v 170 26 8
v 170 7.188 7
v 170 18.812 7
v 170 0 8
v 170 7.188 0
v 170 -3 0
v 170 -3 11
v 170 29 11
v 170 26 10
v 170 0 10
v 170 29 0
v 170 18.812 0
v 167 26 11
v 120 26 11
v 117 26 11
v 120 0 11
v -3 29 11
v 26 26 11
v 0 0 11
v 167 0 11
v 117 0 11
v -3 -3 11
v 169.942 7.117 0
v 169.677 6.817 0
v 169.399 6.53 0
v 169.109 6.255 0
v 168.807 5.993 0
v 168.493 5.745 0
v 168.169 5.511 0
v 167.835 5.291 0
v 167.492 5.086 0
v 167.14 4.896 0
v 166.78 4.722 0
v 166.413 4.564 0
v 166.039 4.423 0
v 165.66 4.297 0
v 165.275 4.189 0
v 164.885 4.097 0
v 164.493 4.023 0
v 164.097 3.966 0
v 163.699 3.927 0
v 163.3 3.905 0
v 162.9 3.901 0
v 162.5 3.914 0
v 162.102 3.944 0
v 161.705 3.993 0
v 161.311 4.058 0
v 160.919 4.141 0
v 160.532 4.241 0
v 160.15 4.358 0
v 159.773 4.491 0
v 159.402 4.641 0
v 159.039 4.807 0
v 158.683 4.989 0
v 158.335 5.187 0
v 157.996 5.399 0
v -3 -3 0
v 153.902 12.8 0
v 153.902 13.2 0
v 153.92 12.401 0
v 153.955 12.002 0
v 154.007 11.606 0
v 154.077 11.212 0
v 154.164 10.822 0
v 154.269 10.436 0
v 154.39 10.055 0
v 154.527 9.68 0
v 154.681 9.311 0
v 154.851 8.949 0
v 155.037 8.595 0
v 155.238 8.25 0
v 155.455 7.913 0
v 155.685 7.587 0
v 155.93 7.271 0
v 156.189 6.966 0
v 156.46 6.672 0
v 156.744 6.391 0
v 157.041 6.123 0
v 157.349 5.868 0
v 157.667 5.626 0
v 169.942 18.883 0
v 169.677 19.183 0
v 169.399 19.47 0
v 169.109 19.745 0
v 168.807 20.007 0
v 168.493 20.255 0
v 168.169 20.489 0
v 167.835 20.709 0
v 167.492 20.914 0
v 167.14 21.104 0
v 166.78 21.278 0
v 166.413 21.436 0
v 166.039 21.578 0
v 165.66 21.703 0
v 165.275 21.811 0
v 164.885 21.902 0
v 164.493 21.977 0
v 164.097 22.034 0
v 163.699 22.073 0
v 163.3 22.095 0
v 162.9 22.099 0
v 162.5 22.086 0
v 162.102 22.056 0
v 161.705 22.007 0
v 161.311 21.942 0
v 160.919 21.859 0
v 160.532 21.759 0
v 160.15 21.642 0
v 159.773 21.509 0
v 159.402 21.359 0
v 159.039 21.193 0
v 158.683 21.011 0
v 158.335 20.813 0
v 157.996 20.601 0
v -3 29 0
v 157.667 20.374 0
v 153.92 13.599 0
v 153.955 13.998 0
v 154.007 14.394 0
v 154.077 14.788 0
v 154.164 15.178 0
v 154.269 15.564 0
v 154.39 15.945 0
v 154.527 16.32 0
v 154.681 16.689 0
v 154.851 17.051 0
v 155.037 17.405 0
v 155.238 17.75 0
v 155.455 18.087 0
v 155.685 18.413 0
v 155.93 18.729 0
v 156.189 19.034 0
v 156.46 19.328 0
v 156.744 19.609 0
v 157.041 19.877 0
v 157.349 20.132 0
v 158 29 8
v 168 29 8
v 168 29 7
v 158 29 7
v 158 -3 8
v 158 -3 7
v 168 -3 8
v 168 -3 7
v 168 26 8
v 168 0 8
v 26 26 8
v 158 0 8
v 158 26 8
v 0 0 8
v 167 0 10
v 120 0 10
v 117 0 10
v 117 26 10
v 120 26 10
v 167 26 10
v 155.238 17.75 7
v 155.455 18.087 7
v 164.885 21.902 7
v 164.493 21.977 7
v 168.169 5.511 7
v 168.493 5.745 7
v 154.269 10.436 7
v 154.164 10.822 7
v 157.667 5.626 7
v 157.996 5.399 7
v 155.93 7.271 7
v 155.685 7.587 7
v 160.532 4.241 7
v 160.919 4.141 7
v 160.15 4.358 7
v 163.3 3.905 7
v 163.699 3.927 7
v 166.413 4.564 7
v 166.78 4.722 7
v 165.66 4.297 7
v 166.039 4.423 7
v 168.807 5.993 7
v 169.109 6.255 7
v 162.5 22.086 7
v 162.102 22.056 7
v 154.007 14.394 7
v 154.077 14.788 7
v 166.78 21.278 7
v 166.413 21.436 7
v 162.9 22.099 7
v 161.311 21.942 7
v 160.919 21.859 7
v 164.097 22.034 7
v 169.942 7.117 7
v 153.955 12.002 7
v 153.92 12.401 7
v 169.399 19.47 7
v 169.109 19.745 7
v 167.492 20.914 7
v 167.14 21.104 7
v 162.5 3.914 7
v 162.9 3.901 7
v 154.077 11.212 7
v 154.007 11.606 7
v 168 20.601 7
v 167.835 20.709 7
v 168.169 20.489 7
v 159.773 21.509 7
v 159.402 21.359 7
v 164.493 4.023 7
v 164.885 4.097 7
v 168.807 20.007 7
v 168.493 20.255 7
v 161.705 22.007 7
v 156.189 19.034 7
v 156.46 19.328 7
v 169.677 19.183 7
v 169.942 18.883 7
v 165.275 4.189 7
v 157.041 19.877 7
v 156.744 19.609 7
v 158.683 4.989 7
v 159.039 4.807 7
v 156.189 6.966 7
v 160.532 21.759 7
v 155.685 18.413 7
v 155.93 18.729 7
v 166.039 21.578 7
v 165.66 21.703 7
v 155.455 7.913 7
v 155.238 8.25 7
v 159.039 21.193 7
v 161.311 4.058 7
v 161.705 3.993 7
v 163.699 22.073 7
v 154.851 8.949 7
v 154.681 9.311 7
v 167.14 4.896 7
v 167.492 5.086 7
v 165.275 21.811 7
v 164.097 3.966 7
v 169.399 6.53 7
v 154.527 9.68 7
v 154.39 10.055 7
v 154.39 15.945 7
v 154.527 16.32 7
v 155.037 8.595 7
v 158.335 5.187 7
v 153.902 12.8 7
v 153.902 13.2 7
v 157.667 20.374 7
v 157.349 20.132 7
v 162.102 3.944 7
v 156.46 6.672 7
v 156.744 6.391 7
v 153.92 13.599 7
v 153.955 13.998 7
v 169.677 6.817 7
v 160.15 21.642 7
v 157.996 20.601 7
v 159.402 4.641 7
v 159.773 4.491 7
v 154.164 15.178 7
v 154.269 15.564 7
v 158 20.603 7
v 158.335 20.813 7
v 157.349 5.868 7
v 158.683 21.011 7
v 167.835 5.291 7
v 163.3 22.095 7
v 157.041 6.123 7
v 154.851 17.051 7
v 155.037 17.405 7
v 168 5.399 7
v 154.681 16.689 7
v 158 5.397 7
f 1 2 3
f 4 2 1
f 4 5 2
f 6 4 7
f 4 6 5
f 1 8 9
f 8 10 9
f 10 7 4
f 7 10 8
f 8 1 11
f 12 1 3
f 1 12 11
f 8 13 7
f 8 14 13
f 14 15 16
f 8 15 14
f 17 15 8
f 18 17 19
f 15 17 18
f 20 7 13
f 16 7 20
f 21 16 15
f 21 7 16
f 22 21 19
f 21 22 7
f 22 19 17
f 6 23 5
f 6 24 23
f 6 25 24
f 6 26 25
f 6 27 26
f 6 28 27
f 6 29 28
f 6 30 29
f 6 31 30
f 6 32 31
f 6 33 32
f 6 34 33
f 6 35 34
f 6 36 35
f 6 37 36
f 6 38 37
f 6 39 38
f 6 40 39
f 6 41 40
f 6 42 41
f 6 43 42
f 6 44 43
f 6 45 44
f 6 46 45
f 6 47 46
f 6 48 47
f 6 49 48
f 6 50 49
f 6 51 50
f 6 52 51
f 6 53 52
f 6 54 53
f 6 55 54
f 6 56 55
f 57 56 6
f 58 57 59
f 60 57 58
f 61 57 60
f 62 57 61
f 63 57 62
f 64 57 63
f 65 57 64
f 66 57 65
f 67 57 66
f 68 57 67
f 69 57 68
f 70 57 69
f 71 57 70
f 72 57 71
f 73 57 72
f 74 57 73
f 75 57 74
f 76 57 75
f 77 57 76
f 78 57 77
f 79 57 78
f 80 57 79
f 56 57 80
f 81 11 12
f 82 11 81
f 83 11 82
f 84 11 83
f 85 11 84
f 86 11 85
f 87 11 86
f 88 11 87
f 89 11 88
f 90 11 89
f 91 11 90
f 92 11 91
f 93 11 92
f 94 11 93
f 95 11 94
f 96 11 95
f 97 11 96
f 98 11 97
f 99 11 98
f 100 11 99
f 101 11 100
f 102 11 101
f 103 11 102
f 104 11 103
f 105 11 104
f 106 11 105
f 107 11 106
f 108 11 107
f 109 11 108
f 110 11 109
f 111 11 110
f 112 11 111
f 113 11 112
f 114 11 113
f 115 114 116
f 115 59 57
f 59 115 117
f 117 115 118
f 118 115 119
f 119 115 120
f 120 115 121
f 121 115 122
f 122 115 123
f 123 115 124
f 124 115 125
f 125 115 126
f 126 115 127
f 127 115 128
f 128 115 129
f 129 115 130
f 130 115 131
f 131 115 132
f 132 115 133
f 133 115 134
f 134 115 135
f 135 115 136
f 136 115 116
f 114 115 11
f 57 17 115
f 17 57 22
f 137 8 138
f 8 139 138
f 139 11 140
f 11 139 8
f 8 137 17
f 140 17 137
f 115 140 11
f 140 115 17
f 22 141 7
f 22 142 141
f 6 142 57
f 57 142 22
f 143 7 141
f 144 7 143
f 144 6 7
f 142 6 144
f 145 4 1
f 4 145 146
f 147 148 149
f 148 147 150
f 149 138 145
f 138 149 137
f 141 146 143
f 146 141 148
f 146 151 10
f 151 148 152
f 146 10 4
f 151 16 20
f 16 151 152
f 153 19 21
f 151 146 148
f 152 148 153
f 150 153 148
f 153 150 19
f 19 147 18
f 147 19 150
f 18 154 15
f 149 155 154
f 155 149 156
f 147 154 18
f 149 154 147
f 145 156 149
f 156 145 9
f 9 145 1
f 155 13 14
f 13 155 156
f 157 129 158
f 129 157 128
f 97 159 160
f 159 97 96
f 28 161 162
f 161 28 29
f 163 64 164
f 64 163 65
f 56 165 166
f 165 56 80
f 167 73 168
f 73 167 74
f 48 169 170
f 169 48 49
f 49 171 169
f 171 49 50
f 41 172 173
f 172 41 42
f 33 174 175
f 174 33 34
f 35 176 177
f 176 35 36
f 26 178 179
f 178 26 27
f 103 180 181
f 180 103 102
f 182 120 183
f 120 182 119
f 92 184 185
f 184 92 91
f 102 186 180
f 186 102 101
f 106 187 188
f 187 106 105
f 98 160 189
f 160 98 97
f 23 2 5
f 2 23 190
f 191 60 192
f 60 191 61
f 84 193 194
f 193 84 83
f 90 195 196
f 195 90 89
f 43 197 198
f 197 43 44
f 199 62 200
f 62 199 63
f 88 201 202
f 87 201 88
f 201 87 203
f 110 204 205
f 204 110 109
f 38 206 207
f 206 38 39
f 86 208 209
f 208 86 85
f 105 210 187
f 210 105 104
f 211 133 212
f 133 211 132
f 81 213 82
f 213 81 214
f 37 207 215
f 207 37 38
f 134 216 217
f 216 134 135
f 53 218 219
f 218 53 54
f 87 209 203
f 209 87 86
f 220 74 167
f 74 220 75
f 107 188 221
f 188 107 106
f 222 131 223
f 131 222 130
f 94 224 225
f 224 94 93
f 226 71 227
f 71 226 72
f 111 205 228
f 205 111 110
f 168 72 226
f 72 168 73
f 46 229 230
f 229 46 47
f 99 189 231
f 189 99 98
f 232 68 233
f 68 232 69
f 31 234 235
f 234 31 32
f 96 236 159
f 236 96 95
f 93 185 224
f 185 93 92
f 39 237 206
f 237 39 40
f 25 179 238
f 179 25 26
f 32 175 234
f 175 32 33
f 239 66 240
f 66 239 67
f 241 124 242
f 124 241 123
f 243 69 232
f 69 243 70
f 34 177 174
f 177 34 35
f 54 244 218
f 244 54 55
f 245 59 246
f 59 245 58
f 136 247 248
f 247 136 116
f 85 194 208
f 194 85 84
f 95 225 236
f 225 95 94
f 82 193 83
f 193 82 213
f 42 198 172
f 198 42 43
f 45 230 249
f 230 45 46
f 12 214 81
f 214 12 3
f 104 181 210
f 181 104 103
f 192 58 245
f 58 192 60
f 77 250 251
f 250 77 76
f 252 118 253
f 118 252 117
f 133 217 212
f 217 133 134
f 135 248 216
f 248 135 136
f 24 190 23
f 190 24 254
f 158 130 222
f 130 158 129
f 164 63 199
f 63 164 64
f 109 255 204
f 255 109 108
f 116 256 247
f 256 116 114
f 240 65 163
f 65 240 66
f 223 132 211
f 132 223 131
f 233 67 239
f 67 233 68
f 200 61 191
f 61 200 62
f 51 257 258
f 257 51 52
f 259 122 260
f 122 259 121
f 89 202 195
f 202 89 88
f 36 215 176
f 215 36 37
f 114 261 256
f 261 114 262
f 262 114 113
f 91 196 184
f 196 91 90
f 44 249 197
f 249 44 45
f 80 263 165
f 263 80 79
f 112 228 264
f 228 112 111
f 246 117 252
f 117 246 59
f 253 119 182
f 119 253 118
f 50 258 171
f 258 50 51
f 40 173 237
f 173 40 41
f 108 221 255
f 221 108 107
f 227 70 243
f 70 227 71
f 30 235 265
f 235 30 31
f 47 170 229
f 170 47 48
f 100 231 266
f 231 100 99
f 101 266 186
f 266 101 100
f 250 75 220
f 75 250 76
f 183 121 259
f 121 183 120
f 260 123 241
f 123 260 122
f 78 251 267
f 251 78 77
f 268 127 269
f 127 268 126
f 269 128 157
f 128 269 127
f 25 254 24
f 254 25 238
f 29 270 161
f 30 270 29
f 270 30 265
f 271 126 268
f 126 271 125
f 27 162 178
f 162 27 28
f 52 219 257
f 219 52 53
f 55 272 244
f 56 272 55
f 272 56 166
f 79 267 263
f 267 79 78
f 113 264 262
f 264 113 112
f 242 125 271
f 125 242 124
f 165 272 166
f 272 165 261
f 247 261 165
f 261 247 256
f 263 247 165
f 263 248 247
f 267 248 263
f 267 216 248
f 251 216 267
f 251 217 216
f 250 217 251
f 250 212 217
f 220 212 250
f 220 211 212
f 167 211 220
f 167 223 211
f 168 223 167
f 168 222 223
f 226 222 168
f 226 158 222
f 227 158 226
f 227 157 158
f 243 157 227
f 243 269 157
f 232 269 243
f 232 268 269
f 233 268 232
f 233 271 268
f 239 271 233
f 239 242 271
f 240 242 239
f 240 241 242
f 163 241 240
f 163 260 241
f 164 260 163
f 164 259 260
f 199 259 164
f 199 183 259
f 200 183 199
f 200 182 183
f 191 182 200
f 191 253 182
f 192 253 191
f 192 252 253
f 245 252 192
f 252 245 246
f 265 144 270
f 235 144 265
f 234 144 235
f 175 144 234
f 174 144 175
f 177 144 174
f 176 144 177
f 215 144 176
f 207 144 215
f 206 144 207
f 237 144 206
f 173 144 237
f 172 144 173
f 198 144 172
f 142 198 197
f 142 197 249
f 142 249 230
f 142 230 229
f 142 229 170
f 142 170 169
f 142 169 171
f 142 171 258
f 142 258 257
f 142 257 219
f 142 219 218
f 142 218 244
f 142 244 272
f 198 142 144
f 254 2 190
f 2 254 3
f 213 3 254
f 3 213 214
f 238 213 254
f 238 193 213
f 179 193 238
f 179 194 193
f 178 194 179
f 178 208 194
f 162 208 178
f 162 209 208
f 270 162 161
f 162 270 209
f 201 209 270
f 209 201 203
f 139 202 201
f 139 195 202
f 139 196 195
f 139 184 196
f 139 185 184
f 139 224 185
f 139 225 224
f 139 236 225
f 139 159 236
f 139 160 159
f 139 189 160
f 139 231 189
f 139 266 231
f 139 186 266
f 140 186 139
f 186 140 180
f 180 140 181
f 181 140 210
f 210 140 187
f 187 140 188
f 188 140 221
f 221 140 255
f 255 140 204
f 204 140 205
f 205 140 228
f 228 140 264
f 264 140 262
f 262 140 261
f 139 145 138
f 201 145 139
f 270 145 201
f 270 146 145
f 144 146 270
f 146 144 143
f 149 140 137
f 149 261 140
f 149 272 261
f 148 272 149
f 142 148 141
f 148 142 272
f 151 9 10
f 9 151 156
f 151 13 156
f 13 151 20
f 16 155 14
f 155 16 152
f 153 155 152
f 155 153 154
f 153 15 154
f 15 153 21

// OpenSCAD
$fa = 1;
$fs = 0.4;

width = 26;
height = 170;
holeDiameter = 18.2;
thickness = 3;
metalStandThickness = 8;

difference () {
    // тело линейки
    color("green")
    translate([-thickness, -thickness, 0])
    cube([height + thickness, width + 2 * thickness, thickness + metalStandThickness]);
    
    // вырез под ленточку
    points = [
        [0, 0],
        [height, 0],
        [height, width],
        [width, width]
    ];

    // вырез под ленточку
    translate([0, 0, metalStandThickness])
    linear_extrude(height = thickness)
        polygon(points);
        
    // отверстие под наковальню
    translate([height - 7, width/2, 0])
    cylinder(metalStandThickness - 1, d = holeDiameter);

    // отверстие для подавателя бумаги
    feederWidth = 10;
    feederThickness = 1;
    color("red")
    // translate([height - (feederWidth/2) - 7, 0, feederThickness])

    translate([height - (feederWidth/2) - 7, -thickness, metalStandThickness - feederThickness])
        cube([feederWidth, width + 2*thickness, feederThickness]);

}

// прижималка 1
pressThickness = 3;
translate([height - pressThickness, 0, metalStandThickness + thickness - 1]) {
    cube([pressThickness, width, 1]);
}

// прижималка 2
press2Shift = 40;
color("red")
translate([height - pressThickness - press2Shift, 0, metalStandThickness + thickness - 1]) {
    cube([pressThickness, width, 1]);
}
